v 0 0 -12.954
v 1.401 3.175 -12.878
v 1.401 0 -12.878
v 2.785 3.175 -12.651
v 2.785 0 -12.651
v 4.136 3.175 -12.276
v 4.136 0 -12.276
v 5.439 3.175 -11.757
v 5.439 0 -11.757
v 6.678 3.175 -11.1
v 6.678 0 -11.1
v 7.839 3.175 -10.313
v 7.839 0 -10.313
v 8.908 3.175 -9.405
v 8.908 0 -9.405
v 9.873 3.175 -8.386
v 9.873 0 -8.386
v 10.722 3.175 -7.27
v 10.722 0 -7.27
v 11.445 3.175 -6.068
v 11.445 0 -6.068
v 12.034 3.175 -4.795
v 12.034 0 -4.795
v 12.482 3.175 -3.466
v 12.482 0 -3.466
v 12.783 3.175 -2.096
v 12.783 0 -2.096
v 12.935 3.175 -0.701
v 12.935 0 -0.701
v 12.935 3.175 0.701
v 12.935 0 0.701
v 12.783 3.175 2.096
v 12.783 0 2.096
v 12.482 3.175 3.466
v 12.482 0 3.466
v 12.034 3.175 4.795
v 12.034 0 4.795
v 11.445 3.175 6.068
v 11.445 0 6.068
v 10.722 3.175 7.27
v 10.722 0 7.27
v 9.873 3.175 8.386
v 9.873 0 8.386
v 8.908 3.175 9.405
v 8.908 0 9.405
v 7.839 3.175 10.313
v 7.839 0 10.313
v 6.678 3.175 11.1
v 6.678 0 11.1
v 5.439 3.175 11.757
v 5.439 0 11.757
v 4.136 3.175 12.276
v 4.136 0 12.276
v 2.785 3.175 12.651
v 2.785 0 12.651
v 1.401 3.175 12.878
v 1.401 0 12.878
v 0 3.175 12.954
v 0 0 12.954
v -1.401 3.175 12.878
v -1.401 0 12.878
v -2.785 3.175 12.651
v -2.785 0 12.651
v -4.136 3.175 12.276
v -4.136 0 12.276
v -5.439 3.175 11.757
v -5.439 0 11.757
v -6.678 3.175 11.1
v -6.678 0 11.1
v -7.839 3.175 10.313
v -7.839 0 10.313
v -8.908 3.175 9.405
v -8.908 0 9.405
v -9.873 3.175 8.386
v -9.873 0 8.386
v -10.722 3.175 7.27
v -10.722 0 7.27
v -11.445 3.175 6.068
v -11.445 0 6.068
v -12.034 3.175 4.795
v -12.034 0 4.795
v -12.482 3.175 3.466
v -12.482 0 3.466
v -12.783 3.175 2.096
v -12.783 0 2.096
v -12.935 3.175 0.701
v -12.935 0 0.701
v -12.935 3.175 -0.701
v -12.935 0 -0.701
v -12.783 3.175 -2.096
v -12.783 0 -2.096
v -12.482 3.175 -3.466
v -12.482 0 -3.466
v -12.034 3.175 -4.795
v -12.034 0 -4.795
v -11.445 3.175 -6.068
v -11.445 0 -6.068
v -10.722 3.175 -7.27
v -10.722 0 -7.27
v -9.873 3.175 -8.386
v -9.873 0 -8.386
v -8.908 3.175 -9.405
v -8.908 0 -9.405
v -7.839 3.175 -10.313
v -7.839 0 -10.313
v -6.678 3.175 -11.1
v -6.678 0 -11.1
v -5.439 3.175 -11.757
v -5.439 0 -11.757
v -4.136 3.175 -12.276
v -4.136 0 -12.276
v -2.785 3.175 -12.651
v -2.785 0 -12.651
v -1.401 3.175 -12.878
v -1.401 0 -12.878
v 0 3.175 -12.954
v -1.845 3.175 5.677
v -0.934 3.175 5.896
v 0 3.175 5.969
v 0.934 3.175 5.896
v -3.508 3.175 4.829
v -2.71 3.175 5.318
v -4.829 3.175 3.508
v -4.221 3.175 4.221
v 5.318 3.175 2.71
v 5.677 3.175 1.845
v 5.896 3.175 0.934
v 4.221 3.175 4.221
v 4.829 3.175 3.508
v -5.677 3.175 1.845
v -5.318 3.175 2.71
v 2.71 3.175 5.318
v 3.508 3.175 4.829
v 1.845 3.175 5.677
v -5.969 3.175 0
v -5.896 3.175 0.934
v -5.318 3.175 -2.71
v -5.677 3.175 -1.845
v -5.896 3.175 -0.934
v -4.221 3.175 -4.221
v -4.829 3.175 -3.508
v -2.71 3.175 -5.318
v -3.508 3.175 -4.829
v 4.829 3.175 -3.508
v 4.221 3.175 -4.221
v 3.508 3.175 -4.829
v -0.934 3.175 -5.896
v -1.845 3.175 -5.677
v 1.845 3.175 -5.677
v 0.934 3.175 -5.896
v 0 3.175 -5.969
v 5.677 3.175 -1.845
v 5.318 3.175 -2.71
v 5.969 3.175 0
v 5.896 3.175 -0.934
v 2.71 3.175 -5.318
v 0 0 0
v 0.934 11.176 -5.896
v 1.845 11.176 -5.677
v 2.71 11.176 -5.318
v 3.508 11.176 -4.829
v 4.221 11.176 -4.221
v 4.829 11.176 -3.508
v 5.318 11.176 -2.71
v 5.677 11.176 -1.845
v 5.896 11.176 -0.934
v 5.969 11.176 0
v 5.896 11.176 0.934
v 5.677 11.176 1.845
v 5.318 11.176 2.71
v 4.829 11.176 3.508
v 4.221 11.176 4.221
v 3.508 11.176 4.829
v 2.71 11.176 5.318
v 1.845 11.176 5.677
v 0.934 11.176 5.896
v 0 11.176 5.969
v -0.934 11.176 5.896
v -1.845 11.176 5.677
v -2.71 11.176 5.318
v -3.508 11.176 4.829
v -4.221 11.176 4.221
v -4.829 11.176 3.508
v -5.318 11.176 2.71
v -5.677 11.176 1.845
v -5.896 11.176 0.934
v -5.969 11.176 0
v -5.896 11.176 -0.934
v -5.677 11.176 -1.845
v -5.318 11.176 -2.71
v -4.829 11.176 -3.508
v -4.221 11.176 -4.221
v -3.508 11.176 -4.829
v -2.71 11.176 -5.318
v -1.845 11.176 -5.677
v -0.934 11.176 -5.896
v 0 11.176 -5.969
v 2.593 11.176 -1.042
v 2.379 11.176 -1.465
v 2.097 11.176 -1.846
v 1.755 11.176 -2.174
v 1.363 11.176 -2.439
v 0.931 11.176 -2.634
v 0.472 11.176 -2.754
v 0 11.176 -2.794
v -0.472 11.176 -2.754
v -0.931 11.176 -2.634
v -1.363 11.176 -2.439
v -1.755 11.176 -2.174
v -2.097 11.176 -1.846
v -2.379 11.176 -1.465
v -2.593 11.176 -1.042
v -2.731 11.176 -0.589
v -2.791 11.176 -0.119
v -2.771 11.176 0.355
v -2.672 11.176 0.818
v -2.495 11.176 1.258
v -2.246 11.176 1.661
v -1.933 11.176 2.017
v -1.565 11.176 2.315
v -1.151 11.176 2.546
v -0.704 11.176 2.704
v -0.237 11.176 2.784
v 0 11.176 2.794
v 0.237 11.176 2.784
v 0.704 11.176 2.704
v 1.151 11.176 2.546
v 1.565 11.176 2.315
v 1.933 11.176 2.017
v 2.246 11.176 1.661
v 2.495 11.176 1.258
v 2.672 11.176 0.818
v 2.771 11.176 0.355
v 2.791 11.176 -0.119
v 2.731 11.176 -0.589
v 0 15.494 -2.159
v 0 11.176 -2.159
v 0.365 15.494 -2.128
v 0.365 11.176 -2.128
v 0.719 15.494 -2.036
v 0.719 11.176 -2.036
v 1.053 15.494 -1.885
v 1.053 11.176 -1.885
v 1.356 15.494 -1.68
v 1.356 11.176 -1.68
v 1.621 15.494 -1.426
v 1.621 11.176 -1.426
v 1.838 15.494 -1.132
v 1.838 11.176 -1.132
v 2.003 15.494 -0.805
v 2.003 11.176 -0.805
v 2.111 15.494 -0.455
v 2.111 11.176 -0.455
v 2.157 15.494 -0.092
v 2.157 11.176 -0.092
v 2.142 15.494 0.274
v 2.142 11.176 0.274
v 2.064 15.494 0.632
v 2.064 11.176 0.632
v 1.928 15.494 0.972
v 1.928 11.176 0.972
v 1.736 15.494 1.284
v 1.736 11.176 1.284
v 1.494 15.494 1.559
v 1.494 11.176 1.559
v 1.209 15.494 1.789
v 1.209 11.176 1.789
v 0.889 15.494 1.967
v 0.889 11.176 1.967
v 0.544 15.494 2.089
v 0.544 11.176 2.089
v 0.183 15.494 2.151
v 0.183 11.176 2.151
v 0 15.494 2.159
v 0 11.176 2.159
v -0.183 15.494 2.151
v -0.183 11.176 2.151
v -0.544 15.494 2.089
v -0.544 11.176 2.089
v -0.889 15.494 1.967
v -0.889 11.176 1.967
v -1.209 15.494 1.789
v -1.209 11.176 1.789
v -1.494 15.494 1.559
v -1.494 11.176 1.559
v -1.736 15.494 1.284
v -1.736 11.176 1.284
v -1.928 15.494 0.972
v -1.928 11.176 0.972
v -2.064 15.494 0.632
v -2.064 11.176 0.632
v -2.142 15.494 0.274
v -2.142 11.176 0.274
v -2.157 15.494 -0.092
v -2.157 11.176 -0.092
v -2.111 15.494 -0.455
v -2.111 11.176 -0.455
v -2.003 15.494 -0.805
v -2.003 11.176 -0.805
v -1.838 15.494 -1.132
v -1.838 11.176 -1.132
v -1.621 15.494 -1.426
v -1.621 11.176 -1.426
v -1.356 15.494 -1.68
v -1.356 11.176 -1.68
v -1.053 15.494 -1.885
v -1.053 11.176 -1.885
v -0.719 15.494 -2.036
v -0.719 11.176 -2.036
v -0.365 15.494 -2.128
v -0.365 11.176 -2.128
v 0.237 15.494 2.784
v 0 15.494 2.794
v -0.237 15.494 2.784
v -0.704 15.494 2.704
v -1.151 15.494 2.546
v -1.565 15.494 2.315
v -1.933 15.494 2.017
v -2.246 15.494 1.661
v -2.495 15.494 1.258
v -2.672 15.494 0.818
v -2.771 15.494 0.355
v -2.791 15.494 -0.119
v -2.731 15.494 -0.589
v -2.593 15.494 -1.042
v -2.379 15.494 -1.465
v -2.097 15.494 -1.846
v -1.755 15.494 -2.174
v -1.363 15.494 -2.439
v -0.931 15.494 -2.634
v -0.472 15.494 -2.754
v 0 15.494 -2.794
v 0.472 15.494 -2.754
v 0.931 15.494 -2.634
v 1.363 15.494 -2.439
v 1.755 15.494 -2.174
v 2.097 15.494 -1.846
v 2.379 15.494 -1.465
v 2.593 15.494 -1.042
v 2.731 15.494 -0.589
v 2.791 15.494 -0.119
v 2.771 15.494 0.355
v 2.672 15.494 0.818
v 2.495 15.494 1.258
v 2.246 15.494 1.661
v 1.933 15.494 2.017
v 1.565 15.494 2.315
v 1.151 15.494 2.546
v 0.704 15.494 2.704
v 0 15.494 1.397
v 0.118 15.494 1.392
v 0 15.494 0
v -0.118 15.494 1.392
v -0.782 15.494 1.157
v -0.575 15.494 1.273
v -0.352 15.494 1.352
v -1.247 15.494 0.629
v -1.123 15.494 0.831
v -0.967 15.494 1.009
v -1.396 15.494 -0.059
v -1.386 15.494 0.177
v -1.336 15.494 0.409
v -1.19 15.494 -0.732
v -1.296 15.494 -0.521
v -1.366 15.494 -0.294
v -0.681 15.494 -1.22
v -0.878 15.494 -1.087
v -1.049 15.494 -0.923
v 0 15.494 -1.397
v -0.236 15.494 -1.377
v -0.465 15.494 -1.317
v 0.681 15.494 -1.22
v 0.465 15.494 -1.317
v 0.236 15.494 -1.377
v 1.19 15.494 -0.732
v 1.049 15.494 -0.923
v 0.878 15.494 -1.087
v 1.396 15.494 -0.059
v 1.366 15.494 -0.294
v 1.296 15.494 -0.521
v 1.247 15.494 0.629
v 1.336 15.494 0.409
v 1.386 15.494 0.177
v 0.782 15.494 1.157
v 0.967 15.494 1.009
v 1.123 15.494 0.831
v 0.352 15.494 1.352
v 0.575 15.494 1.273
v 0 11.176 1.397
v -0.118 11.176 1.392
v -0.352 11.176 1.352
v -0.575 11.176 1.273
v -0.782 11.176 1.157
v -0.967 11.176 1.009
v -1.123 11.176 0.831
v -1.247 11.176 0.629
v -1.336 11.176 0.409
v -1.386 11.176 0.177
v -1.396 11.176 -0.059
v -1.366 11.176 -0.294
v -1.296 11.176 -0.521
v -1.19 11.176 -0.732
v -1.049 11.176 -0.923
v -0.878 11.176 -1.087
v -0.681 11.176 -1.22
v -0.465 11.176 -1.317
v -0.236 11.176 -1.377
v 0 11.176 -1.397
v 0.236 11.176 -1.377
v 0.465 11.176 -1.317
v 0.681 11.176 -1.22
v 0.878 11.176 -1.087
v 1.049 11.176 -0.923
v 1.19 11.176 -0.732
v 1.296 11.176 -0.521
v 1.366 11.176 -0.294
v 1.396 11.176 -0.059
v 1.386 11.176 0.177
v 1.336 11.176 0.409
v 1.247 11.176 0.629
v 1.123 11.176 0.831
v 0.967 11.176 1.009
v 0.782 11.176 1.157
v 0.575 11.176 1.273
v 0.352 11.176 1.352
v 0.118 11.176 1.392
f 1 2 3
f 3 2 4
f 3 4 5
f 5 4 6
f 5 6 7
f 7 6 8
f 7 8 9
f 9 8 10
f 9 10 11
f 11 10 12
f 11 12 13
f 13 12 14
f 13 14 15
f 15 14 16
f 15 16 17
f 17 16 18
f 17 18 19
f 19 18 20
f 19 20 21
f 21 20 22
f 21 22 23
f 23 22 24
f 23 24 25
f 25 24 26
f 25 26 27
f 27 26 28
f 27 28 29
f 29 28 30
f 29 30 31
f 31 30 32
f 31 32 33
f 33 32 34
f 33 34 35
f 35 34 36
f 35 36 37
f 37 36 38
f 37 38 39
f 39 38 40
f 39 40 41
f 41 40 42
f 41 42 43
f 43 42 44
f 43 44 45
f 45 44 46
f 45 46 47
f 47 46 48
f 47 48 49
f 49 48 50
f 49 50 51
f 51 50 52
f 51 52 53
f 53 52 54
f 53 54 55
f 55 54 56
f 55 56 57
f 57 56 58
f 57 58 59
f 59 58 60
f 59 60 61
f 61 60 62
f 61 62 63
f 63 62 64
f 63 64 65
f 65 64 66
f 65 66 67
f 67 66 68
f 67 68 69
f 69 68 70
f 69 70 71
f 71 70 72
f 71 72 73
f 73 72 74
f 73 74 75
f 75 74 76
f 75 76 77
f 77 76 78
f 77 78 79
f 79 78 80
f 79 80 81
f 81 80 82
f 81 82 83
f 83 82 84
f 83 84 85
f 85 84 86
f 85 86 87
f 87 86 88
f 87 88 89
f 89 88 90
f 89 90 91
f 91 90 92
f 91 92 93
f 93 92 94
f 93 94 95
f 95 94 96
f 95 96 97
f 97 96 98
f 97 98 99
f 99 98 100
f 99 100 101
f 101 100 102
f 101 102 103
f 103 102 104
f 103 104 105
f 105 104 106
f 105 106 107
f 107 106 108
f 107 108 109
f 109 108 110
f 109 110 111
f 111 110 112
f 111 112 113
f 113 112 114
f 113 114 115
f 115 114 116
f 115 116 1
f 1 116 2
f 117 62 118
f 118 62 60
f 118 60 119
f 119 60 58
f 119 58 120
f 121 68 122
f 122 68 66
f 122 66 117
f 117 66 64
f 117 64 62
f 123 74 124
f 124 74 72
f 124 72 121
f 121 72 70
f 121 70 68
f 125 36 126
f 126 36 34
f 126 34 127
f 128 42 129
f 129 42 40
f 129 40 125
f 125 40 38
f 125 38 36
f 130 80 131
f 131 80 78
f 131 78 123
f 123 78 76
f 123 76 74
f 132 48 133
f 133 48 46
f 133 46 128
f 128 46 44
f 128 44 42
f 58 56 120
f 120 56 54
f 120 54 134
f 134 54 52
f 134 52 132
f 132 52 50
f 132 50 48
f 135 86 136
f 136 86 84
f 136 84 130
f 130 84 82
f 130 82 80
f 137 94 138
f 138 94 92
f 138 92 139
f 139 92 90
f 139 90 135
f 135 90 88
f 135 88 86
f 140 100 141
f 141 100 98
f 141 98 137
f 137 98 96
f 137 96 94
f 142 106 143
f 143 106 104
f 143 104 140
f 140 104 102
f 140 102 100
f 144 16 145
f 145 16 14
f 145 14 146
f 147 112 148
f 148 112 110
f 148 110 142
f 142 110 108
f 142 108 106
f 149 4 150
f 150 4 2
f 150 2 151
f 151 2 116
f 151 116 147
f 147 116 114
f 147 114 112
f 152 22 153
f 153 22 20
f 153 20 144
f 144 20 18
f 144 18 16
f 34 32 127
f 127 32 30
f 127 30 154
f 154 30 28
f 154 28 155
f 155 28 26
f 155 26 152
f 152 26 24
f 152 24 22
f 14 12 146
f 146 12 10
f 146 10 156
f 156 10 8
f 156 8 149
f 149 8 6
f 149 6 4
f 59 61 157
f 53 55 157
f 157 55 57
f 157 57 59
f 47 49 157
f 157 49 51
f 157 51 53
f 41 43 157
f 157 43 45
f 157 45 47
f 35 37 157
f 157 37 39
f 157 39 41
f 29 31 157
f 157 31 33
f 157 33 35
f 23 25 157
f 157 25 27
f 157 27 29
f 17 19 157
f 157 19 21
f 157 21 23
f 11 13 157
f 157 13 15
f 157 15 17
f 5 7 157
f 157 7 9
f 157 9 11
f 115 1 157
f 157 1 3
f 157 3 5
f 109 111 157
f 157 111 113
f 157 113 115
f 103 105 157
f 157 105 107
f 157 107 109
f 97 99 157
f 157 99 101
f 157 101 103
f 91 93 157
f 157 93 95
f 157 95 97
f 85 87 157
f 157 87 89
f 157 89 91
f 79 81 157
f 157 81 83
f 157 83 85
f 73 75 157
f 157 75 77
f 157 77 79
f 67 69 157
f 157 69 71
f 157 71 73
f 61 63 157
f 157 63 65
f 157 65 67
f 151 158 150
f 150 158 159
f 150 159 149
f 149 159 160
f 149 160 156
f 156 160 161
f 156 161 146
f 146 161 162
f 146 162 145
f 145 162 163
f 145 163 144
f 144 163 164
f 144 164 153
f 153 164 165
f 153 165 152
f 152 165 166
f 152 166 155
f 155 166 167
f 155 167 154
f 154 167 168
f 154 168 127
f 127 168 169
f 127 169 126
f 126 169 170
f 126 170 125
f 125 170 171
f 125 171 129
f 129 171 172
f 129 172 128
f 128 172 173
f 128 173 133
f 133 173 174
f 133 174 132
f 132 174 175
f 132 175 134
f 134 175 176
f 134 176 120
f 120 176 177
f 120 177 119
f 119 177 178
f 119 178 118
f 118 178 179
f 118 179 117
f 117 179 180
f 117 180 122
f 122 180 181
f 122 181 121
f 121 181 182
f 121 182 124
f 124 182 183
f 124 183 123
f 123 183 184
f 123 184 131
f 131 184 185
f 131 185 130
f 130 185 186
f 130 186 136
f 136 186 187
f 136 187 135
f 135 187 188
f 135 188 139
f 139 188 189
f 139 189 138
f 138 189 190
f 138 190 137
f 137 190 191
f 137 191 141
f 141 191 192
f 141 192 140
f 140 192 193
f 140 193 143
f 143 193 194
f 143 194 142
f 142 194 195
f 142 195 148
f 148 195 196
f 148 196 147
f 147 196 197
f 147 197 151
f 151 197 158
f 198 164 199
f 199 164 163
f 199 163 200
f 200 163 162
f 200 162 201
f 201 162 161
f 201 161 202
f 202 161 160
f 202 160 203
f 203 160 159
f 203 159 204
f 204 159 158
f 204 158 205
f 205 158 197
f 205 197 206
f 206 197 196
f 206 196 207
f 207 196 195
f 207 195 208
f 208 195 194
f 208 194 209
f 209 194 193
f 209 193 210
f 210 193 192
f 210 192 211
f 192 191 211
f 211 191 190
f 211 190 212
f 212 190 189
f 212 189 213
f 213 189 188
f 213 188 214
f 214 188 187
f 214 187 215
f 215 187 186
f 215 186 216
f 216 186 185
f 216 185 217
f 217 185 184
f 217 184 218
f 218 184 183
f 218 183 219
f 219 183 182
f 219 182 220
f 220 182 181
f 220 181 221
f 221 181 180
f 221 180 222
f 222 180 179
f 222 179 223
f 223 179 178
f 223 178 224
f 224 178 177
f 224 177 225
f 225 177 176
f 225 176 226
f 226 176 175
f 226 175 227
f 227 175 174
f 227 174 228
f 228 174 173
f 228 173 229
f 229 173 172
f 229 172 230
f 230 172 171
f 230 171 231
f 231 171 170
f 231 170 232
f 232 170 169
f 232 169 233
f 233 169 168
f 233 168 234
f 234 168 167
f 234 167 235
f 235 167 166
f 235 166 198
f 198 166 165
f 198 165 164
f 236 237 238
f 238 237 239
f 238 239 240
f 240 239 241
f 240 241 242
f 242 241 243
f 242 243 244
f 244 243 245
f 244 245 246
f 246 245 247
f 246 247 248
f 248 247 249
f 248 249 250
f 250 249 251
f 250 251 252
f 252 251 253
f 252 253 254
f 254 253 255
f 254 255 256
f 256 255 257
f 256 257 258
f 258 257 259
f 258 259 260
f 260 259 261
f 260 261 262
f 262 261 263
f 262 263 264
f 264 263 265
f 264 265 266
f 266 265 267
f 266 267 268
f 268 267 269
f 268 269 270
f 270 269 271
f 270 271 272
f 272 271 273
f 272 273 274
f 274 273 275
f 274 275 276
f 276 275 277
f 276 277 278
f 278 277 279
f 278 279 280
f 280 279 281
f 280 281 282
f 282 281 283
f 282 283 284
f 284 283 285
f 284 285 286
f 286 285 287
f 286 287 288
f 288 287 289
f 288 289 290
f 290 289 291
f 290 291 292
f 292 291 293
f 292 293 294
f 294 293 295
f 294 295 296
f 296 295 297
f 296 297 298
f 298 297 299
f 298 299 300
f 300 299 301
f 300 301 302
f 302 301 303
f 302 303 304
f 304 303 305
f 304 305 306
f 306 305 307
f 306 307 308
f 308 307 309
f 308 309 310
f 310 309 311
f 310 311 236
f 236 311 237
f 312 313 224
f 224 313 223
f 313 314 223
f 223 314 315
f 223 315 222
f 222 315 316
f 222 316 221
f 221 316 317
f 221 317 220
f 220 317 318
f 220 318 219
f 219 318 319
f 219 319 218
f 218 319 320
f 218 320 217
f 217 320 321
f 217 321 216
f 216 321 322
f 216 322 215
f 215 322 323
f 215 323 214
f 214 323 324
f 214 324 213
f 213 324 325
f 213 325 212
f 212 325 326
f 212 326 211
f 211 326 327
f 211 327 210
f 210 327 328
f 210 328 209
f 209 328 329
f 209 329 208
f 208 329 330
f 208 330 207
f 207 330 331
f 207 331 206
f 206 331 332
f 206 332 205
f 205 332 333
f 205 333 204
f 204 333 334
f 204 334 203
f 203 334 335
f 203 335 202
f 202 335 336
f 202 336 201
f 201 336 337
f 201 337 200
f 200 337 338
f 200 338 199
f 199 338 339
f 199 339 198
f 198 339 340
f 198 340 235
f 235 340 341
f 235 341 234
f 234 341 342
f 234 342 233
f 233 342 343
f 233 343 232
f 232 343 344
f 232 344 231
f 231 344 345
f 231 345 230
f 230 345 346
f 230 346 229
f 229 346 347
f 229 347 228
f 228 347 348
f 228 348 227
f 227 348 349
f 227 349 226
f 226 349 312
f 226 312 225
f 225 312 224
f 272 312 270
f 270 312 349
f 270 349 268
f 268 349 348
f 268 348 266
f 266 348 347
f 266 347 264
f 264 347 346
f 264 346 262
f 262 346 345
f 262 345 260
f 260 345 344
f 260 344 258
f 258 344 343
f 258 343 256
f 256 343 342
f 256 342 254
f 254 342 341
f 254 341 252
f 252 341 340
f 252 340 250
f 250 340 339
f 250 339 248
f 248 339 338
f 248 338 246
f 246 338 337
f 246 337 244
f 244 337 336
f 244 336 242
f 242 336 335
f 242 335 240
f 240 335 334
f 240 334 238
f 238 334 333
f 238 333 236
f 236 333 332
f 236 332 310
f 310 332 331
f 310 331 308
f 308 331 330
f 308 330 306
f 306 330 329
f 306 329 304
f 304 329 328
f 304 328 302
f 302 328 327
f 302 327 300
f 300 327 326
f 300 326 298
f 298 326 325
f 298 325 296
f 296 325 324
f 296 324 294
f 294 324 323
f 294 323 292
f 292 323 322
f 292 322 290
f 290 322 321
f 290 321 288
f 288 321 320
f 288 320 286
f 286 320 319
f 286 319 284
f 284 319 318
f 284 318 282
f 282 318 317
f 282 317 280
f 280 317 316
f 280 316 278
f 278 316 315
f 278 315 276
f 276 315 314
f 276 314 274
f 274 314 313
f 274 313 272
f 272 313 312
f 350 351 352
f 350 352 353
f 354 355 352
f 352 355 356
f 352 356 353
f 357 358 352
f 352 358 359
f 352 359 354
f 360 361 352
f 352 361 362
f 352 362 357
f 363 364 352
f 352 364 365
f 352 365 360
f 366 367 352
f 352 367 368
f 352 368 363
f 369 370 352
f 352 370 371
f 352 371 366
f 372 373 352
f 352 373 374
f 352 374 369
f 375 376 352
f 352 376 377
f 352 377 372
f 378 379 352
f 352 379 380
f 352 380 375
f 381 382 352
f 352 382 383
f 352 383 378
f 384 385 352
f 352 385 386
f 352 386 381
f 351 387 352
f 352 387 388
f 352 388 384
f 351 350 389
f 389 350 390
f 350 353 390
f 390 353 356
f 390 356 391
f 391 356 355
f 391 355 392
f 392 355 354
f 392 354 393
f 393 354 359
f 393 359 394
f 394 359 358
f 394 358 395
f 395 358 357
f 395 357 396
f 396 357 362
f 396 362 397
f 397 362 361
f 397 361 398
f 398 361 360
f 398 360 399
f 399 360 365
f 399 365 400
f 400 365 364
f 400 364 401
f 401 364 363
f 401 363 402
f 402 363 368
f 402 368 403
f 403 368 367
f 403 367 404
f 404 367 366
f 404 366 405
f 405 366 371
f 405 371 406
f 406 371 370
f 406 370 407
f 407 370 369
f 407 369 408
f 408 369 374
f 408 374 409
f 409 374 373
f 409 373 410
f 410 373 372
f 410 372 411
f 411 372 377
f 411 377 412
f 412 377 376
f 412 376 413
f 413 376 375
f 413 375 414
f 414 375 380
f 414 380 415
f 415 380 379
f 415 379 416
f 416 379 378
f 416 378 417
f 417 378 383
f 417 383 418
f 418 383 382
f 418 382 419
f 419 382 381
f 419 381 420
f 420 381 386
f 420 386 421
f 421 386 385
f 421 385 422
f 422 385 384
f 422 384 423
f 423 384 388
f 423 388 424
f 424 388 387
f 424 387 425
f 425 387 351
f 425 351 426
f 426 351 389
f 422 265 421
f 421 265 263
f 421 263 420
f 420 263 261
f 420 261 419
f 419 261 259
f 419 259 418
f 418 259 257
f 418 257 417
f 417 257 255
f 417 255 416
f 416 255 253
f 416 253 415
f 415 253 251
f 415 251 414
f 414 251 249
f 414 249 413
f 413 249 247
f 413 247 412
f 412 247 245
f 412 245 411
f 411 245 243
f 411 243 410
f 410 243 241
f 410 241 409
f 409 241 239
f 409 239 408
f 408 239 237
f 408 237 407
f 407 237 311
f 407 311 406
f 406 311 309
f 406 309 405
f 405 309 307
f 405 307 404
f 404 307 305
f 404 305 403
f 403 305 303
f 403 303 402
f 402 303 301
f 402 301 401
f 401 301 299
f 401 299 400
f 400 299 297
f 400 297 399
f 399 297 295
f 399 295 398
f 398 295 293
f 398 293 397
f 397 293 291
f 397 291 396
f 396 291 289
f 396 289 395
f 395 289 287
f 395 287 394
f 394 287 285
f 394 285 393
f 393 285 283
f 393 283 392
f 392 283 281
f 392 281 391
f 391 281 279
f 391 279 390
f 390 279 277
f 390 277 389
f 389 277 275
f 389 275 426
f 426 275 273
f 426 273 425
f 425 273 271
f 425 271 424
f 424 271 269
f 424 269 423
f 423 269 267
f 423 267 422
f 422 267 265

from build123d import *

# Parameters (mm, degrees)
SKETCH2_R           = 12.954
BOSS_EXTRUDE1_DEPTH = 3.175
SKETCH3_R           = 5.969
BOSS_EXTRUDE2_DEPTH = 8.001
SKETCH4_R           = 2.794
SKETCH4_R_2         = 2.159
SKETCH4_R_3         = 1.397
BOSS_EXTRUDE3_DEPTH = 4.318


with BuildPart() as part:
    # Sketch2 → Boss-Extrude1 (new body)
    with BuildSketch(Plane(origin=(0, 0, 0), x_dir=(1, 0, 0), z_dir=(0, 1, 0))):
        with Locations(Location((0, 0, 0), (0, 0, 270))):
            Circle(SKETCH2_R)
    extrude(amount=BOSS_EXTRUDE1_DEPTH)

    # Sketch3 → Boss-Extrude2 (add)
    with BuildSketch(Plane(origin=(0, 3.175, 0), x_dir=(1, 0, 0), z_dir=(0, 1, 0))):
        with Locations(Location((0, 0, 0), (0, 0, 270))):
            Circle(SKETCH3_R)
    extrude(amount=BOSS_EXTRUDE2_DEPTH)

    # Sketch4 → Boss-Extrude3 (add)
    with BuildSketch(Plane(origin=(0, 11.176, 0), x_dir=(1, 0, 0), z_dir=(0, 1, 0))):
        with Locations(Location((0, 0, 0), (0, 0, 270))):
            Circle(SKETCH4_R)
        with Locations(Location((0, 0, 0), (0, 0, 270))):
            Circle(SKETCH4_R_2, mode=Mode.SUBTRACT)
        with Locations(Location((0, 0, 0), (0, 0, 270))):
            Circle(SKETCH4_R_3)
    extrude(amount=BOSS_EXTRUDE3_DEPTH)


solid = part.part
